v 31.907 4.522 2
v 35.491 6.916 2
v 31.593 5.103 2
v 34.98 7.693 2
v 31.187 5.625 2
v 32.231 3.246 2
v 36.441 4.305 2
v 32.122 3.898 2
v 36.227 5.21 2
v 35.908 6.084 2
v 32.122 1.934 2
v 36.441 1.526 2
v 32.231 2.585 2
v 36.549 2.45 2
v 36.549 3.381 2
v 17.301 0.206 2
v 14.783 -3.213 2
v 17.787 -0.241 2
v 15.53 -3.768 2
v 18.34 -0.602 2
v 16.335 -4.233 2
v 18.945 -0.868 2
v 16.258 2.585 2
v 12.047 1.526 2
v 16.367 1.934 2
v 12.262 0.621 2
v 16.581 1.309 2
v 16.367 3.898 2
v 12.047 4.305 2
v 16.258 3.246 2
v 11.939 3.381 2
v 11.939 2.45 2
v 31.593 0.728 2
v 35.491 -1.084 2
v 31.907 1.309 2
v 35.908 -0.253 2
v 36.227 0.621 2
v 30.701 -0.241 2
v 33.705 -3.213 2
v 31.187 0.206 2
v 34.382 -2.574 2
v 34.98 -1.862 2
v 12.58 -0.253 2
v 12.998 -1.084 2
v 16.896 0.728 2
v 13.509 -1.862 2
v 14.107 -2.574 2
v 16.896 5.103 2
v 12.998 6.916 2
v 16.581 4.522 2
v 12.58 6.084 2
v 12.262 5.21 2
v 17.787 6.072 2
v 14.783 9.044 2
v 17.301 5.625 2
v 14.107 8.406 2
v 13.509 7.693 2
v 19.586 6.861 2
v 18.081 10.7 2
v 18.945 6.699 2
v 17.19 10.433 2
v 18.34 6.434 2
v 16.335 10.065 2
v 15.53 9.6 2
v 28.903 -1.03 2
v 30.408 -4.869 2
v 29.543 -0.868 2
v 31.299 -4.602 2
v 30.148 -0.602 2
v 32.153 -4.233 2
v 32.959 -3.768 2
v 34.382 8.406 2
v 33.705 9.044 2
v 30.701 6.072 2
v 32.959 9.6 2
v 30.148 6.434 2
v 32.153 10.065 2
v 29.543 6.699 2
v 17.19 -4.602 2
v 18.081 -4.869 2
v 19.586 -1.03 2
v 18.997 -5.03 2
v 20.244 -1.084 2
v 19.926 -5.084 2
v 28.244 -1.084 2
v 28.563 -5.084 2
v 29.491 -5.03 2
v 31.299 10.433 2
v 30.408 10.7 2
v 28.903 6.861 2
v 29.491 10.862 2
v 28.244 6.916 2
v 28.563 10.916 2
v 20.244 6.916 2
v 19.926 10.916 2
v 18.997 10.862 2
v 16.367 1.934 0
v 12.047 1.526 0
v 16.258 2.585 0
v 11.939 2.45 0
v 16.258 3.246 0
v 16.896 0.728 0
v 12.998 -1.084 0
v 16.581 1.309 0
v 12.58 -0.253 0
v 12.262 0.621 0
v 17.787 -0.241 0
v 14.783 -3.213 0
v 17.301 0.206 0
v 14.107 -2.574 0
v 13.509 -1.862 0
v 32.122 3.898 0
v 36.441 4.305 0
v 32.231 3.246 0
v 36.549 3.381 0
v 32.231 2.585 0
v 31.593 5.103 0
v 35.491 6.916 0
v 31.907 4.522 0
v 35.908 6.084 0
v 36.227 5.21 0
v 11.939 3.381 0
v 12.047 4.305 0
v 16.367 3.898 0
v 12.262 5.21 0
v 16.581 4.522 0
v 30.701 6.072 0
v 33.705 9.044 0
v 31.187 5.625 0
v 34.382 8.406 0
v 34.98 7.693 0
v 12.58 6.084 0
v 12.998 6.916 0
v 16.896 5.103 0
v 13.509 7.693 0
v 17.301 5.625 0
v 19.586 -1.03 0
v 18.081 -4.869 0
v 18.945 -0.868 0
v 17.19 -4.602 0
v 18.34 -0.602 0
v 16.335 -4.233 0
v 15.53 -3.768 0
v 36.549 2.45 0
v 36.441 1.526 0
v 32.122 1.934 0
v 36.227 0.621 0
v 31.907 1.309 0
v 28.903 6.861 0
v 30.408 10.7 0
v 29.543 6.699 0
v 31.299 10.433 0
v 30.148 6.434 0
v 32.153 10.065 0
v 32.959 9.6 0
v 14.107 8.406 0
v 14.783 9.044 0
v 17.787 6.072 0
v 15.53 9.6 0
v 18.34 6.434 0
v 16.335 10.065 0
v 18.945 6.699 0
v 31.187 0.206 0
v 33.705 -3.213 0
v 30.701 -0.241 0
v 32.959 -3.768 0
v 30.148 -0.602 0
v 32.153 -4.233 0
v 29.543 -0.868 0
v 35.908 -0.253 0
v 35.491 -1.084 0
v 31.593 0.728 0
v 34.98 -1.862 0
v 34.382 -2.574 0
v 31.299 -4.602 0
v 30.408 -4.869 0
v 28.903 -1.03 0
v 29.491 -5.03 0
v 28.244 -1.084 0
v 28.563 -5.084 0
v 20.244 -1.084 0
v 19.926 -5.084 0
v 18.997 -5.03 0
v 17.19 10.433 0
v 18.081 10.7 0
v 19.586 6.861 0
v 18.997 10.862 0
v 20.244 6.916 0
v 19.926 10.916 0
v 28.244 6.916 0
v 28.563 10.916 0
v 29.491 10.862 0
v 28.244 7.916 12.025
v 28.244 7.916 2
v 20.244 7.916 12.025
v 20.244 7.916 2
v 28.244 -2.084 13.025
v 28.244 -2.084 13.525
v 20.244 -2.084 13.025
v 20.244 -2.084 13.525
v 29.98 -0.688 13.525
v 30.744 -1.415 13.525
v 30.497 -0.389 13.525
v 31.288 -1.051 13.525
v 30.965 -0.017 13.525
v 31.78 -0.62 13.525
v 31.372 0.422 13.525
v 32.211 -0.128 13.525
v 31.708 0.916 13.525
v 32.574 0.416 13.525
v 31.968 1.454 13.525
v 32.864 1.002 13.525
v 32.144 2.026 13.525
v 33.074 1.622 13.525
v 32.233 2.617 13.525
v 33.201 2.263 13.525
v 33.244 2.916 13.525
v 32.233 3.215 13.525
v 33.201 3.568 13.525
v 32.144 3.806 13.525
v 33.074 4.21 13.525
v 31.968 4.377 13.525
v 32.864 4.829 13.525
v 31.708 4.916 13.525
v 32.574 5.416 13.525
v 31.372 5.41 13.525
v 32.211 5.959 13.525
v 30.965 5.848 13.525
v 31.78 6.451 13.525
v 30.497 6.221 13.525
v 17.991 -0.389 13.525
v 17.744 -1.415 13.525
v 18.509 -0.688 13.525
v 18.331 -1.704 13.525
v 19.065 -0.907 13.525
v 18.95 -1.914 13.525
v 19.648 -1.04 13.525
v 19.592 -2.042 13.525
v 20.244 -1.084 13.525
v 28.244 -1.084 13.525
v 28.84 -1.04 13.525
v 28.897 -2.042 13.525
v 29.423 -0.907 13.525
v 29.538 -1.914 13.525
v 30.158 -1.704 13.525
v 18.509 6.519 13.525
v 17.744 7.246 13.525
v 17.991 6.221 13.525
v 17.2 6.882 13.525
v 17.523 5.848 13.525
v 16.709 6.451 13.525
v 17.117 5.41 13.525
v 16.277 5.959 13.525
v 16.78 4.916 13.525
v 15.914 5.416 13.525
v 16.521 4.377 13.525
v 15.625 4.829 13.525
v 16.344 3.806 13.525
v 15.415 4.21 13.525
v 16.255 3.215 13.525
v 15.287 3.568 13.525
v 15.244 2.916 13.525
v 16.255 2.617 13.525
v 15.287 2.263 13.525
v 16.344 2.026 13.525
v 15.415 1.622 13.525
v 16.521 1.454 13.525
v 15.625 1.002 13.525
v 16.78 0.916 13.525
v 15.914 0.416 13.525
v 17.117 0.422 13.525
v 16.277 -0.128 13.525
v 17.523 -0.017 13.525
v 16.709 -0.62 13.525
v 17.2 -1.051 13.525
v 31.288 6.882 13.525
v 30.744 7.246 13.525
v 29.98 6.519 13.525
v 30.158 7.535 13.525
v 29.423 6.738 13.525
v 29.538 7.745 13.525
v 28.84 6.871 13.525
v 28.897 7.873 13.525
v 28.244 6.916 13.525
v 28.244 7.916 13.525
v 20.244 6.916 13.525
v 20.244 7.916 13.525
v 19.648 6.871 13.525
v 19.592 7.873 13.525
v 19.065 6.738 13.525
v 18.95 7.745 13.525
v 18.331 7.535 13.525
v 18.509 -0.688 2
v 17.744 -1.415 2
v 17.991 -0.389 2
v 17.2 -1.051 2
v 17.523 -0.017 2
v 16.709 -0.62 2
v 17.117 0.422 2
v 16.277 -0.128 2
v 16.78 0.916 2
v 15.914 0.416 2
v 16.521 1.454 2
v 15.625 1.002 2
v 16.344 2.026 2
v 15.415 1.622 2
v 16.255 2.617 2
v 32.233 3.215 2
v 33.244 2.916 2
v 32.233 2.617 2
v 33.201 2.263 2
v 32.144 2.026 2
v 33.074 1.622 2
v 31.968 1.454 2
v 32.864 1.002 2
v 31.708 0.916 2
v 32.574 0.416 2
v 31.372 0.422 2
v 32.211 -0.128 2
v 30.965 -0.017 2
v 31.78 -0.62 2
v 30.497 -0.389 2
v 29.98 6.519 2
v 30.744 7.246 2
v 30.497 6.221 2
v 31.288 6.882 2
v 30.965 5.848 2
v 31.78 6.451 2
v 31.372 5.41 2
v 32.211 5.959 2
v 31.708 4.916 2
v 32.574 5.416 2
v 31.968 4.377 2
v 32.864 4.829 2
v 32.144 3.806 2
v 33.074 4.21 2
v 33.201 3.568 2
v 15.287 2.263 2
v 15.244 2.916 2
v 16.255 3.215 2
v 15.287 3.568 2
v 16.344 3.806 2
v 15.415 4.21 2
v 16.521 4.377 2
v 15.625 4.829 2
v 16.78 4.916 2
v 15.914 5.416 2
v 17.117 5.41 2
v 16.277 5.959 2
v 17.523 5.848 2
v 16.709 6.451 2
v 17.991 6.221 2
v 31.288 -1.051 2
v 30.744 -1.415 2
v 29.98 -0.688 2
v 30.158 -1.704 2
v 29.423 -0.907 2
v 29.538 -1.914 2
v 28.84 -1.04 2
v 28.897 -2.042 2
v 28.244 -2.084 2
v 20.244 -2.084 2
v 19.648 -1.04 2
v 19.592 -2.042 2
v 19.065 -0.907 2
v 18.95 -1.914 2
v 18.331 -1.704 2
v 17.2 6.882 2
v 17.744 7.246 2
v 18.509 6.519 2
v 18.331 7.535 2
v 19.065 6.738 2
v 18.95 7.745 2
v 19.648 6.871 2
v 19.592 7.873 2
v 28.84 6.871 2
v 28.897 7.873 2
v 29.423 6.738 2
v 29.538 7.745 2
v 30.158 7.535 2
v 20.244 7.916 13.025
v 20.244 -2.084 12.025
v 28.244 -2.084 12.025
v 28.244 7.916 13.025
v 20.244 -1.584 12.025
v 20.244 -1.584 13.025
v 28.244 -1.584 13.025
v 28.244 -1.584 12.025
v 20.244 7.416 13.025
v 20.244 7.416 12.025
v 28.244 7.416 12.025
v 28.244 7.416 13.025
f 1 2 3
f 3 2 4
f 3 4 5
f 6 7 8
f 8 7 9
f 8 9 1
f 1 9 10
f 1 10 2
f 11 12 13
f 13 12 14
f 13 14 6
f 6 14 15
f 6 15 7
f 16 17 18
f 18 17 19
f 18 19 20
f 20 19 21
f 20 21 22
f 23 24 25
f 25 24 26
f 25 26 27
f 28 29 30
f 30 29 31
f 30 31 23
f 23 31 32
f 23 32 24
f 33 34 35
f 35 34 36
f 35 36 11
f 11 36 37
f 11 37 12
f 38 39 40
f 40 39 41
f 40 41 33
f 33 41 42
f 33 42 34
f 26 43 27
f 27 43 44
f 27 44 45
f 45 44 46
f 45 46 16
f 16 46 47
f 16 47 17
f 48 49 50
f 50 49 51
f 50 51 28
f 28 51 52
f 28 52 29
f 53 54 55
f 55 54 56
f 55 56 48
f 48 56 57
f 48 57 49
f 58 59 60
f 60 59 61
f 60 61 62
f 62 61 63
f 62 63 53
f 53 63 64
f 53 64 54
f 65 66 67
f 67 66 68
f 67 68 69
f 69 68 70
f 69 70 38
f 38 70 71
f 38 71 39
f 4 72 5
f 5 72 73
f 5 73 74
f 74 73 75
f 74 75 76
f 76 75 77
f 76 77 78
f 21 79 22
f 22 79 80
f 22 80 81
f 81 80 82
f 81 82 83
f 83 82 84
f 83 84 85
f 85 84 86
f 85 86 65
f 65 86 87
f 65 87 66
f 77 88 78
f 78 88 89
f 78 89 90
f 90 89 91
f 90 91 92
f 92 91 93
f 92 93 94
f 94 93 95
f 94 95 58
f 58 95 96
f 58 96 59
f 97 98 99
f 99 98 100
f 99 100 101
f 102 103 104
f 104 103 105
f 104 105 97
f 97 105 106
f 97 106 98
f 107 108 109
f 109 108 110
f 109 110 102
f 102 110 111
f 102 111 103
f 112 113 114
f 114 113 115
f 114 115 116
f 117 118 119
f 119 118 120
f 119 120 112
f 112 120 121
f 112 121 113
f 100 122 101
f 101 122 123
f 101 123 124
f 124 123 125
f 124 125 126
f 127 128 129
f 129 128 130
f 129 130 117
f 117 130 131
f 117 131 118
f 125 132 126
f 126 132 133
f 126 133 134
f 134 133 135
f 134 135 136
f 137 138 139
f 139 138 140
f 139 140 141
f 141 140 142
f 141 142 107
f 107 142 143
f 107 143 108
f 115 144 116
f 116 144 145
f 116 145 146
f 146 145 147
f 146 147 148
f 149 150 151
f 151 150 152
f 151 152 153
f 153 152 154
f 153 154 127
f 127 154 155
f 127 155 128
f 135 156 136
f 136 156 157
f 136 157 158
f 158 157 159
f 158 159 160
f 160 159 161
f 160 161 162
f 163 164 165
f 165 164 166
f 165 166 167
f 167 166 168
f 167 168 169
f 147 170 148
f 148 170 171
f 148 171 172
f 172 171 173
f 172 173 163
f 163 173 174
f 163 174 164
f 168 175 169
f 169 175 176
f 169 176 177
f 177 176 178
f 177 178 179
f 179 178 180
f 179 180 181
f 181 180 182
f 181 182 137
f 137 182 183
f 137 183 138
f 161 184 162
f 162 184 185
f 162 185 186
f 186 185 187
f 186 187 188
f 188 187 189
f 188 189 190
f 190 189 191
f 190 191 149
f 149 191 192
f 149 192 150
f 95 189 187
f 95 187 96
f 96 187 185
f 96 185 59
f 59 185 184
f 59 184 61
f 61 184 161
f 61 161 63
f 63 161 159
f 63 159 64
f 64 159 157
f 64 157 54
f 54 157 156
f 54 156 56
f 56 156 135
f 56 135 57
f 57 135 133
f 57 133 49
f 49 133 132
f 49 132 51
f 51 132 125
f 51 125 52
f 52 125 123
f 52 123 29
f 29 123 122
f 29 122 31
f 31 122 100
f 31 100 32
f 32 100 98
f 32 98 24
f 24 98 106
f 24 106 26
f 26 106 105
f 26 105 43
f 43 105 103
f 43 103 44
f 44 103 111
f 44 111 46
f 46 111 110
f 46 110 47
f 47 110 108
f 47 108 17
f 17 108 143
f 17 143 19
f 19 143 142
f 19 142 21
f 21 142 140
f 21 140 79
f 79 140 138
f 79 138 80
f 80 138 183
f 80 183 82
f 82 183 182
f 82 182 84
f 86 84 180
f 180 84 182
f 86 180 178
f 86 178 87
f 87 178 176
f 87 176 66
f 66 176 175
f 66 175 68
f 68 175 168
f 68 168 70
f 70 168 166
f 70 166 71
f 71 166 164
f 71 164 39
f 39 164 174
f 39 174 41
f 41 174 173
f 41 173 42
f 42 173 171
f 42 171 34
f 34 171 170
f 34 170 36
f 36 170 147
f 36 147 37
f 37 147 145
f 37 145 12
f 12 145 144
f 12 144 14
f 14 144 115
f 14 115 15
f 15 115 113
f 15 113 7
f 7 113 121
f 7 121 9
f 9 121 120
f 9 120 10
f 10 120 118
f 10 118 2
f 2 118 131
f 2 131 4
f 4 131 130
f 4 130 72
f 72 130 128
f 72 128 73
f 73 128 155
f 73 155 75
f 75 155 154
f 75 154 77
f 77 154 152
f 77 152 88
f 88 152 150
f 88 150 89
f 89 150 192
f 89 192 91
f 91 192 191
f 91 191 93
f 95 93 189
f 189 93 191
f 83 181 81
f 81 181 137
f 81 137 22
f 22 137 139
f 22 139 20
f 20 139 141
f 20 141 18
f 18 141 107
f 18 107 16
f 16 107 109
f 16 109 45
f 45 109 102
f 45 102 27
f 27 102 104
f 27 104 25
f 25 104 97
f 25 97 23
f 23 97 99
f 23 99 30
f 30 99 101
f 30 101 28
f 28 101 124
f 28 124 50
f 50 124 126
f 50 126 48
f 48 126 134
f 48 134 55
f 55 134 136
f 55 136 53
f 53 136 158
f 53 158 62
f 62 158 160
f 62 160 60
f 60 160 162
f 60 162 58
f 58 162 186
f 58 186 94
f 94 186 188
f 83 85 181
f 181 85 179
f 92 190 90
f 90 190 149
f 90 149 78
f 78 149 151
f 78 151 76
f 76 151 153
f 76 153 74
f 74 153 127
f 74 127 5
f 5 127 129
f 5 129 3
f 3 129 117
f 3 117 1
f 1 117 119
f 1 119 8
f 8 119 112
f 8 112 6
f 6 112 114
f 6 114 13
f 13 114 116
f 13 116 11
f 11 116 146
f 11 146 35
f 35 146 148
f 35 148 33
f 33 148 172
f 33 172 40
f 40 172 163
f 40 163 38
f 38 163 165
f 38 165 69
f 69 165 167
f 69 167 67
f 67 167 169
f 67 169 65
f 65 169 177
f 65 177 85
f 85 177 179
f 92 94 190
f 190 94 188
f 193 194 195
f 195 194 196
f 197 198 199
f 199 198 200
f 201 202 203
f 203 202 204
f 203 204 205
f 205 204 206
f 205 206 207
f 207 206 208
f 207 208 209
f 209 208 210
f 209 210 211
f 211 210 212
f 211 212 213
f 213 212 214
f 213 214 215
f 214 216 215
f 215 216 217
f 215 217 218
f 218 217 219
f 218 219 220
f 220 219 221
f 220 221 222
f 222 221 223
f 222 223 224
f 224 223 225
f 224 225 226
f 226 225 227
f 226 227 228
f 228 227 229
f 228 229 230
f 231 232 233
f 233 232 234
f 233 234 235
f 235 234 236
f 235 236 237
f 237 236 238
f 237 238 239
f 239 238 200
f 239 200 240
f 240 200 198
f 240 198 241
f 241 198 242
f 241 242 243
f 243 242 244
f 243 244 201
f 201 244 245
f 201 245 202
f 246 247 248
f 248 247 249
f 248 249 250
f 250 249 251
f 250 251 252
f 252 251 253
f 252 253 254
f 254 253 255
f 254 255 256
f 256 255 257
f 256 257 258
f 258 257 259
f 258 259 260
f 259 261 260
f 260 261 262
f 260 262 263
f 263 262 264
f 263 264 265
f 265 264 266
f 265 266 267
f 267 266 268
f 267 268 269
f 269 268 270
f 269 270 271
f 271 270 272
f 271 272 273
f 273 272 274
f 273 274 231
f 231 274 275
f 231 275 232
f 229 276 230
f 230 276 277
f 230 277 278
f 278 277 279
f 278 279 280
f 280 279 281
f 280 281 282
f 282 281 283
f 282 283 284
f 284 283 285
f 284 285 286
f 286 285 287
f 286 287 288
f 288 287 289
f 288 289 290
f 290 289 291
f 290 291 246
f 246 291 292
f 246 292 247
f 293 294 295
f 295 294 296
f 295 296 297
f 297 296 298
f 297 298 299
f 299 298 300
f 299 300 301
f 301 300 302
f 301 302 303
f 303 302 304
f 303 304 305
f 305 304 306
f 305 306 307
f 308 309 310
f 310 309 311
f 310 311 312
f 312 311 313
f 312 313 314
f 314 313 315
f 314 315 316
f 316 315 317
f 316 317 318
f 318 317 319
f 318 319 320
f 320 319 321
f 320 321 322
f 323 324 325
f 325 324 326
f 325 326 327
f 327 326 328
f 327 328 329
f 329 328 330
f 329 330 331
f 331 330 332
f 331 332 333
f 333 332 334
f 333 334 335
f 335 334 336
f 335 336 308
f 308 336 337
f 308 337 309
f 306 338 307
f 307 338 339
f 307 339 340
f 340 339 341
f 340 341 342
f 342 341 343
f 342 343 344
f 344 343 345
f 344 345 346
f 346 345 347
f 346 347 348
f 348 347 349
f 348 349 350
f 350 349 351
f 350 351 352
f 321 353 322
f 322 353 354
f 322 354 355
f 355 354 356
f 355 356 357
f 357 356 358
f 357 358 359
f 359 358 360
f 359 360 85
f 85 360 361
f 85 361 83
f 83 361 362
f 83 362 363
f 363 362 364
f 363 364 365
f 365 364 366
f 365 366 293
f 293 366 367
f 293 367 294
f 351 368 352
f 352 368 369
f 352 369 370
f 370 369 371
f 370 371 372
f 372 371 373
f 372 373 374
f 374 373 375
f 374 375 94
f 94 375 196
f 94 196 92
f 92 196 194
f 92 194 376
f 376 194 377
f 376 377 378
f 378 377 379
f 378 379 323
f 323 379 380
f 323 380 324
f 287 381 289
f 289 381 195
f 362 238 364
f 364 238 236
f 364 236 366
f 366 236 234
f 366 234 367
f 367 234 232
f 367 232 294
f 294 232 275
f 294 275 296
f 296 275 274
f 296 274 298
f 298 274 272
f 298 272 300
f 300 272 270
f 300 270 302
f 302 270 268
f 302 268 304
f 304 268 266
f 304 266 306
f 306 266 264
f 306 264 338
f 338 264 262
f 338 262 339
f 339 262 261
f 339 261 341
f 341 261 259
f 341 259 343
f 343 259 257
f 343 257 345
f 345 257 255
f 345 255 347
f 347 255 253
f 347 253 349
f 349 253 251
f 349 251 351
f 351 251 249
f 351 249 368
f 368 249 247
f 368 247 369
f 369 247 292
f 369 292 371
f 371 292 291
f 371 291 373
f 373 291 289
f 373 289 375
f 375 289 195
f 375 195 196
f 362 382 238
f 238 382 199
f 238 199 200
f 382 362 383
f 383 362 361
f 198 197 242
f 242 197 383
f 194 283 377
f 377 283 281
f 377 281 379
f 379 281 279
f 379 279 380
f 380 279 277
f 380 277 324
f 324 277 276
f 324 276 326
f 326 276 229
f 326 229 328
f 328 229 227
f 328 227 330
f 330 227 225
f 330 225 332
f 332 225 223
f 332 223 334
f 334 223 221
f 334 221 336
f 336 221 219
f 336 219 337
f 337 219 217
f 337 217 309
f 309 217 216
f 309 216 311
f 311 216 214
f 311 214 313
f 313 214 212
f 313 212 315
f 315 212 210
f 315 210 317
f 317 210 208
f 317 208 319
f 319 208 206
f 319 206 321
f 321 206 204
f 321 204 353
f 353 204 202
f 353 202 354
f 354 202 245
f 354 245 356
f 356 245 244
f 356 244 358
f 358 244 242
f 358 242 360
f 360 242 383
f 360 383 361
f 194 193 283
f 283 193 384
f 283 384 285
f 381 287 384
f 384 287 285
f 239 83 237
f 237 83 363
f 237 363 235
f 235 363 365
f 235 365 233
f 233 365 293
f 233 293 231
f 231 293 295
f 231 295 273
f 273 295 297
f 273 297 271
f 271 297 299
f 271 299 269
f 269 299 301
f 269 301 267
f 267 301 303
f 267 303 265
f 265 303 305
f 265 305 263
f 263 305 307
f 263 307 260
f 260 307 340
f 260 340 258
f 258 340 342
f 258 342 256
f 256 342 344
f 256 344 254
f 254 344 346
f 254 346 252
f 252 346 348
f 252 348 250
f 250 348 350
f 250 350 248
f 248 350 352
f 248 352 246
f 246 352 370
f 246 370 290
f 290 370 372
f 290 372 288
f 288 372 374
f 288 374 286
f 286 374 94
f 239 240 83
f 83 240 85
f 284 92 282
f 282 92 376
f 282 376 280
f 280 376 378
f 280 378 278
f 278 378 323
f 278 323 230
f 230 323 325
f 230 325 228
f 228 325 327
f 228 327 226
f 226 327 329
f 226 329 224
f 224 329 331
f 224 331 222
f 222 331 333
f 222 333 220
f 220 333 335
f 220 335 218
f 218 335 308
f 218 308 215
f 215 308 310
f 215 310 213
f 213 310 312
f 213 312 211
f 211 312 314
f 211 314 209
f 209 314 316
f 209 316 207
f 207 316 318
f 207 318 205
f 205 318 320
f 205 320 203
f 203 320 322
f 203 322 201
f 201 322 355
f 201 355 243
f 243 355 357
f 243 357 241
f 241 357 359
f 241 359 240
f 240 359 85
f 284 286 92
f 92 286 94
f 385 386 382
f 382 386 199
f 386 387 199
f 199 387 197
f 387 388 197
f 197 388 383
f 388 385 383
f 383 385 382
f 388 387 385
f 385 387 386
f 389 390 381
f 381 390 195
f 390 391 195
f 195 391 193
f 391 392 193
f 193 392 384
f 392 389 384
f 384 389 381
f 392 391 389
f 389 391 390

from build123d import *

# Parameters (mm, degrees)
BASEBOSS_EXTRUDE1_DEPTH = 2
BOSS_EXTRUDE2_DEPTH     = 11.525
SKETCH3_W               = 8
SKETCH3_H               = 1
CUT_EXTRUDE1_DEPTH      = 0.5
SKETCH4_W               = 8
SKETCH4_H               = 1
CUT_EXTRUDE2_DEPTH      = 0.5


with BuildPart() as part:
    # Sketch1 → BaseBoss-Extrude1 (new body)
    with BuildSketch(Plane.XY):
        with BuildLine():
            Line((19.925716198, 10.915607247), (28.562658873, 10.915607247))
            ThreePointArc((28.562658873, 10.915607247), (36.562658873, 2.915607247), (28.562658873, -5.084392753))
            Line((28.562658873, -5.084392753), (19.925716198, -5.084392753))
            ThreePointArc((19.925716198, -5.084392753), (11.925716198, 2.915607247), (19.925716198, 10.915607247))
        make_face()
        with BuildLine():
            Line((20.244187536, 6.915607247), (28.244187536, 6.915607247))
            ThreePointArc((28.244187536, 6.915607247), (32.244187536, 2.915607247), (28.244187536, -1.084392753))
            Line((28.244187536, -1.084392753), (20.244187536, -1.084392753))
            ThreePointArc((20.244187536, -1.084392753), (16.244187536, 2.915607247), (20.244187536, 6.915607247))
        make_face(mode=Mode.SUBTRACT)
    extrude(amount=BASEBOSS_EXTRUDE1_DEPTH)


with BuildPart() as body_2:
    # Sketch2 → Boss-Extrude2 (new body)
    with BuildSketch(Plane.XY.offset(2)):
        with BuildLine():
            Line((20.244187536, 7.915607247), (28.244187536, 7.915607247))
            ThreePointArc((28.244187536, 7.915607247), (33.244187536, 2.915607247), (28.244187536, -2.084392753))
            Line((28.244187536, -2.084392753), (20.244187536, -2.084392753))
            ThreePointArc((20.244187536, -2.084392753), (15.244187536, 2.915607247), (20.244187536, 7.915607247))
        make_face()
        with BuildLine():
            Line((20.244187536, 6.915607247), (28.244187536, 6.915607247))
            ThreePointArc((28.244187536, 6.915607247), (32.244187536, 2.915607247), (28.244187536, -1.084392753))
            Line((28.244187536, -1.084392753), (20.244187536, -1.084392753))
            ThreePointArc((20.244187536, -1.084392753), (16.244187536, 2.915607247), (20.244187536, 6.915607247))
        make_face(mode=Mode.SUBTRACT)
    extrude(amount=BOSS_EXTRUDE2_DEPTH)

    # Sketch3 → Cut-Extrude1 (cut)
    with BuildSketch(Plane.XZ.offset(2.084392753)):
        with Locations((24.244187536, 12.525)):
            Rectangle(SKETCH3_W, SKETCH3_H)
    extrude(amount=-CUT_EXTRUDE1_DEPTH, mode=Mode.SUBTRACT)

    # Sketch4 → Cut-Extrude2 (cut)
    with BuildSketch(Plane(origin=(0, 7.915607247, 0), x_dir=(1, 0, 0), z_dir=(0, 1, 0))):
        with Locations((24.244187536, -12.525)):
            Rectangle(SKETCH4_W, SKETCH4_H)
    extrude(amount=-CUT_EXTRUDE2_DEPTH, mode=Mode.SUBTRACT)


solid = Compound([part.part, body_2.part])
